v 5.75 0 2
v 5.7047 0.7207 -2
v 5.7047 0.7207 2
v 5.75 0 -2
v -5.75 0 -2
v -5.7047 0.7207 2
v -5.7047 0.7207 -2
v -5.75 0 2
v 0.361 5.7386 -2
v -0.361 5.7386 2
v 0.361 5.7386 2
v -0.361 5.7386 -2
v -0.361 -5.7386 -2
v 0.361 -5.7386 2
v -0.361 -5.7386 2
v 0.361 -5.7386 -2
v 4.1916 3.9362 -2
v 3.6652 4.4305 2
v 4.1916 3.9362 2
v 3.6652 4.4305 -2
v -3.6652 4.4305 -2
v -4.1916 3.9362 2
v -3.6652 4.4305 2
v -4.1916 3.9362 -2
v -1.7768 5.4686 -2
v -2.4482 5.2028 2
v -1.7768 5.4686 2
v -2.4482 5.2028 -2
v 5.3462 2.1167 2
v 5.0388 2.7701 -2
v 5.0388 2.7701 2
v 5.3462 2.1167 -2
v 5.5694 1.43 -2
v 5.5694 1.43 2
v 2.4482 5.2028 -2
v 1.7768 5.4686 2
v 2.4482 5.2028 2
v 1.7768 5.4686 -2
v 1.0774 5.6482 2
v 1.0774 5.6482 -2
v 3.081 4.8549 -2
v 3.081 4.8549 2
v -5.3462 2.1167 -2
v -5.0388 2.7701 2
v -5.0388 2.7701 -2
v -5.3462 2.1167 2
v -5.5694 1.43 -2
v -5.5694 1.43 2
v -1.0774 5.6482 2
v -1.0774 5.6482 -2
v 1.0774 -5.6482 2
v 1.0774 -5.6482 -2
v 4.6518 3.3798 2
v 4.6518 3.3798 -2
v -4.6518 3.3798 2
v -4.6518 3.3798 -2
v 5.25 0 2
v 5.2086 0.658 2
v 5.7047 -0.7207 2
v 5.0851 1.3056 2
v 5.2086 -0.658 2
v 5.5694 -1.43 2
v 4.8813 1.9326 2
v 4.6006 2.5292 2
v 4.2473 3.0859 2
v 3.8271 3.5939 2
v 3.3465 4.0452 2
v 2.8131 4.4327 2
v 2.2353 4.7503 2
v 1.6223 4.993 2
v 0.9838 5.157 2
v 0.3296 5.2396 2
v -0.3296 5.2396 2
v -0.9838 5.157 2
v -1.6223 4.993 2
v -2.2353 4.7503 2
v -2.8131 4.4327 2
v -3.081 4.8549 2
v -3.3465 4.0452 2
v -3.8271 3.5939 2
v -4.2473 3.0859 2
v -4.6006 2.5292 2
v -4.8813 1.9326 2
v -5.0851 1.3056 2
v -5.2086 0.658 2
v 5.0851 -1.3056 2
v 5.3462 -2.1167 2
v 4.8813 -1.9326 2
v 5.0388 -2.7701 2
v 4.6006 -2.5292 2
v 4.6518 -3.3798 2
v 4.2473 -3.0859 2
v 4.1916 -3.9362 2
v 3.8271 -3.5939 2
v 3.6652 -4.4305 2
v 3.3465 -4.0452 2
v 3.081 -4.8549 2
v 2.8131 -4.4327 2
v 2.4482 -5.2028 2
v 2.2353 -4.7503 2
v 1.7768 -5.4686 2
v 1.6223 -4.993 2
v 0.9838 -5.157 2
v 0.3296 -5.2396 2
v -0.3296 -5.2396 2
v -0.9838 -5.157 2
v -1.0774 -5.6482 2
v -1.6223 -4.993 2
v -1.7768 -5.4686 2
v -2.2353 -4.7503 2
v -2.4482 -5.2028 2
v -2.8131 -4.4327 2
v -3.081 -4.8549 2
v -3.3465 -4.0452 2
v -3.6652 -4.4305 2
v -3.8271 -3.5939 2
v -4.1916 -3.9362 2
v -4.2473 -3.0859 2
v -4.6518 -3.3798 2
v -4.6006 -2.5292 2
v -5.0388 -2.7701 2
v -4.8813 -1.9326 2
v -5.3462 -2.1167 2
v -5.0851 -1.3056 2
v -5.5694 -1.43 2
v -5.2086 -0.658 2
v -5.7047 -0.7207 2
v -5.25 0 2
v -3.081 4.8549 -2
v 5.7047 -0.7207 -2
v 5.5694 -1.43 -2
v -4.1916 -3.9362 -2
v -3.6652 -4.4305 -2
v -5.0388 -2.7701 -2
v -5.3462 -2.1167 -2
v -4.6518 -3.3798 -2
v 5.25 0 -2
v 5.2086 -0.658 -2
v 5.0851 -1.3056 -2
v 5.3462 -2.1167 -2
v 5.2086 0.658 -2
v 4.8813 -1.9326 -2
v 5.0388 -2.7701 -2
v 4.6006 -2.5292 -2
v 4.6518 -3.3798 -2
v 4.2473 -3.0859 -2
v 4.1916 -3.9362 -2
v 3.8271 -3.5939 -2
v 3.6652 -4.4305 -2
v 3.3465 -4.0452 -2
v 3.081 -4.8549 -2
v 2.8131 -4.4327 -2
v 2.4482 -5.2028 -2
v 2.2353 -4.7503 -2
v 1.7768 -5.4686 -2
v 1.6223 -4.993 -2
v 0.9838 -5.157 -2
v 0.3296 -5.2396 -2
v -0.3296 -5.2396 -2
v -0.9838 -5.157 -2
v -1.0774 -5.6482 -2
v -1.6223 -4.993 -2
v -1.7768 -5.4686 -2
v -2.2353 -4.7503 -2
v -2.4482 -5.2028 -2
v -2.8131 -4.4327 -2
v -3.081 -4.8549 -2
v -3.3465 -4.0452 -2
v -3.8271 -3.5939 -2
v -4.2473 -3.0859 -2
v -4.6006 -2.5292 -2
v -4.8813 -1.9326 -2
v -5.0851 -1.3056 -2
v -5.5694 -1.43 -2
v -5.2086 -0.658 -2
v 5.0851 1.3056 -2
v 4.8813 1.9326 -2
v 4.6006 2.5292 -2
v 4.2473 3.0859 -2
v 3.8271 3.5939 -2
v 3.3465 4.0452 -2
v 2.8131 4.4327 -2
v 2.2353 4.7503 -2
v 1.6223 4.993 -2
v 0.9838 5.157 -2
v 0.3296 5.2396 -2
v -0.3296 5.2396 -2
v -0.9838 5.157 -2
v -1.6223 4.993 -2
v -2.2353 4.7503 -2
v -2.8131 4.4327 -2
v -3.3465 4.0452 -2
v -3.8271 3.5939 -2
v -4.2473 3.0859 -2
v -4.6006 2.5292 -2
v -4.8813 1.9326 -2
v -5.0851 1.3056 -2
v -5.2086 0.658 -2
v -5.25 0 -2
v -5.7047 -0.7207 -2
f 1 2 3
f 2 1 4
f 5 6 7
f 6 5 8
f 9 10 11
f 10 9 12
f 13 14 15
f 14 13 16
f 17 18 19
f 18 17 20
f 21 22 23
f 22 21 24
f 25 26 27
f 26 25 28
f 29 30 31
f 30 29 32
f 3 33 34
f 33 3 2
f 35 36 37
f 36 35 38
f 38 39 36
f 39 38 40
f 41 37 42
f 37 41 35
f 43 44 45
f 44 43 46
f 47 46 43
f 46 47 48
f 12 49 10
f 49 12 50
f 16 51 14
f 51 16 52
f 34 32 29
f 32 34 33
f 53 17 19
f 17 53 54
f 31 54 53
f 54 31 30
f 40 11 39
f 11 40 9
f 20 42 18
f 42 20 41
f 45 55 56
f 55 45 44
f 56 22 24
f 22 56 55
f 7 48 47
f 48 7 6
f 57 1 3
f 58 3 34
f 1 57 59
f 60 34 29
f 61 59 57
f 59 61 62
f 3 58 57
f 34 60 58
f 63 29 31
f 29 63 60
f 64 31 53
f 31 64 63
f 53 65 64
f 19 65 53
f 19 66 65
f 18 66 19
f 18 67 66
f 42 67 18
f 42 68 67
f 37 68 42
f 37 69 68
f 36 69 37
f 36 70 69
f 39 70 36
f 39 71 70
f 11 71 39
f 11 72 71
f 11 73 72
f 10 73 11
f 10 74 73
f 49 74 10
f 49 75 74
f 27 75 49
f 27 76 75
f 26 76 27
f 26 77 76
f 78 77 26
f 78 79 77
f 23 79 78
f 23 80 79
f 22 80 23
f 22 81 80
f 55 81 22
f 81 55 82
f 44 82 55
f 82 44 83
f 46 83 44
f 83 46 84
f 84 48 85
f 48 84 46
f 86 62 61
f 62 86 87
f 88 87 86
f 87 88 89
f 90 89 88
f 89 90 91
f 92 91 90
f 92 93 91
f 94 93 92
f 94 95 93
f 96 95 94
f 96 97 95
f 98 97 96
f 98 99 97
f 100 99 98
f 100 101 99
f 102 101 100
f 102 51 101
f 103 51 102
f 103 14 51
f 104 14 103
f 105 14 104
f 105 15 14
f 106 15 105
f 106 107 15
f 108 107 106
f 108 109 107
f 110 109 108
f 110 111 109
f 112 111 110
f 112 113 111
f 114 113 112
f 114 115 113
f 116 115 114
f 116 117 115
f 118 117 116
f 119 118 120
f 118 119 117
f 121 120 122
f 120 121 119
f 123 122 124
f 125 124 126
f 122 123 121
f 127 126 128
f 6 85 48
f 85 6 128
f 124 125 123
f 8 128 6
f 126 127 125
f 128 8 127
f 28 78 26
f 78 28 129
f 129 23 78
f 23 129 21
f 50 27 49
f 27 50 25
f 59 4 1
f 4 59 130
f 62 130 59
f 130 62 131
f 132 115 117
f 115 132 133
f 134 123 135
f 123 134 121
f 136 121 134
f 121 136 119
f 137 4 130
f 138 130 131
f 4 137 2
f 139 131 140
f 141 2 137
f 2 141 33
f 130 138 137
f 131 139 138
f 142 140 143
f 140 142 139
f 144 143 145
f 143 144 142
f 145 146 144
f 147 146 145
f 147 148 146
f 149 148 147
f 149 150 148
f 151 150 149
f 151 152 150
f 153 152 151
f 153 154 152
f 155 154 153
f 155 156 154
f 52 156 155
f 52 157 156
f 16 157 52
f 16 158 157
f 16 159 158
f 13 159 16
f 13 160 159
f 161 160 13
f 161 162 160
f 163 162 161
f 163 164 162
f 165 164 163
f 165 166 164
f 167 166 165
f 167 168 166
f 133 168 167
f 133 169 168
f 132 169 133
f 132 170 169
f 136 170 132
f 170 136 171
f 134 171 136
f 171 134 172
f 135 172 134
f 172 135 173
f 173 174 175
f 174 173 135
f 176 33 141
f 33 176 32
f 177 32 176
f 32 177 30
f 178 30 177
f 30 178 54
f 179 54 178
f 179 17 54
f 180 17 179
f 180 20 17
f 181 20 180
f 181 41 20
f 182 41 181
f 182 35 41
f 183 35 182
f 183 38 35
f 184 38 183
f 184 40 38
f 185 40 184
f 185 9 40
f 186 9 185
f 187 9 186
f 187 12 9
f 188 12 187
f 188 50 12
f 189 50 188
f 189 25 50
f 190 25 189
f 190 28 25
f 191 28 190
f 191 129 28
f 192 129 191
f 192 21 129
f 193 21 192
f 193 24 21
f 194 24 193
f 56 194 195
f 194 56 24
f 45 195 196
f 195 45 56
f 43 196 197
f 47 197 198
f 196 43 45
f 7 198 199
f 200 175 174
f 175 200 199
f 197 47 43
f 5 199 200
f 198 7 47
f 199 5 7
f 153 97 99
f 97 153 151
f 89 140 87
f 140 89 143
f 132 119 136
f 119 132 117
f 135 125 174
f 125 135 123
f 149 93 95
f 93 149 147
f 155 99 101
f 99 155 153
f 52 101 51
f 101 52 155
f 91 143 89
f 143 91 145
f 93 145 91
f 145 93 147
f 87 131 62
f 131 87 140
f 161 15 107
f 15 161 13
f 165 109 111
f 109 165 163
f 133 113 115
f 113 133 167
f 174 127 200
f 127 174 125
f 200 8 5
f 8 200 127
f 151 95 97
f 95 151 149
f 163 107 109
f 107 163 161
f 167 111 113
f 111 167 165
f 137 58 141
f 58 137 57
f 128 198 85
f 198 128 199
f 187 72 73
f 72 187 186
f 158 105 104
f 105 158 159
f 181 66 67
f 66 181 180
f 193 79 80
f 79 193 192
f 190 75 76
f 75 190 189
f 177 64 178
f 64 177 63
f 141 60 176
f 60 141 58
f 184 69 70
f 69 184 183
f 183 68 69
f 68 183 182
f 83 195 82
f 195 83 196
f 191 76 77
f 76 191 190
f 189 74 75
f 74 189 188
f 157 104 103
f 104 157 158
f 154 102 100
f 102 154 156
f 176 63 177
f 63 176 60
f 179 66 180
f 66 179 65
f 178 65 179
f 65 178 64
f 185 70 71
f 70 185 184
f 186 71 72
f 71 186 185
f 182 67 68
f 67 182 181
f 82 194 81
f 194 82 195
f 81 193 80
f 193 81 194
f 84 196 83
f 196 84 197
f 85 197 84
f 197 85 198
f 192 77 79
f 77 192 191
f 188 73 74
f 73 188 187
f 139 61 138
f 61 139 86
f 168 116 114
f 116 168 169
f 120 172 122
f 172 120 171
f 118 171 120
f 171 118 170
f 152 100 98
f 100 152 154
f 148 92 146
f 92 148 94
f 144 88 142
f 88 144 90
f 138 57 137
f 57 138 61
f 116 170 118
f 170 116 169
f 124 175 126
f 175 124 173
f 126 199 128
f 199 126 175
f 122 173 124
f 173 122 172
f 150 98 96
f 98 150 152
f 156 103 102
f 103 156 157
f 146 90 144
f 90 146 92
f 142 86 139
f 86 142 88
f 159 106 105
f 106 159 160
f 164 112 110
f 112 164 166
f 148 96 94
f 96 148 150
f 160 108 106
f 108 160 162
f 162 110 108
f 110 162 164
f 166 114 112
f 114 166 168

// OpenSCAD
$fn = 50;


difference() {
	union() {
		translate(v = [0, 0, -2.0000000000]) {
			cylinder(h = 4, r = 5.7500000000);
		}
	}
	union() {
		translate(v = [0, 0, -100.0000000000]) {
			cylinder(h = 200, r = 5.2500000000);
		}
	}
}
